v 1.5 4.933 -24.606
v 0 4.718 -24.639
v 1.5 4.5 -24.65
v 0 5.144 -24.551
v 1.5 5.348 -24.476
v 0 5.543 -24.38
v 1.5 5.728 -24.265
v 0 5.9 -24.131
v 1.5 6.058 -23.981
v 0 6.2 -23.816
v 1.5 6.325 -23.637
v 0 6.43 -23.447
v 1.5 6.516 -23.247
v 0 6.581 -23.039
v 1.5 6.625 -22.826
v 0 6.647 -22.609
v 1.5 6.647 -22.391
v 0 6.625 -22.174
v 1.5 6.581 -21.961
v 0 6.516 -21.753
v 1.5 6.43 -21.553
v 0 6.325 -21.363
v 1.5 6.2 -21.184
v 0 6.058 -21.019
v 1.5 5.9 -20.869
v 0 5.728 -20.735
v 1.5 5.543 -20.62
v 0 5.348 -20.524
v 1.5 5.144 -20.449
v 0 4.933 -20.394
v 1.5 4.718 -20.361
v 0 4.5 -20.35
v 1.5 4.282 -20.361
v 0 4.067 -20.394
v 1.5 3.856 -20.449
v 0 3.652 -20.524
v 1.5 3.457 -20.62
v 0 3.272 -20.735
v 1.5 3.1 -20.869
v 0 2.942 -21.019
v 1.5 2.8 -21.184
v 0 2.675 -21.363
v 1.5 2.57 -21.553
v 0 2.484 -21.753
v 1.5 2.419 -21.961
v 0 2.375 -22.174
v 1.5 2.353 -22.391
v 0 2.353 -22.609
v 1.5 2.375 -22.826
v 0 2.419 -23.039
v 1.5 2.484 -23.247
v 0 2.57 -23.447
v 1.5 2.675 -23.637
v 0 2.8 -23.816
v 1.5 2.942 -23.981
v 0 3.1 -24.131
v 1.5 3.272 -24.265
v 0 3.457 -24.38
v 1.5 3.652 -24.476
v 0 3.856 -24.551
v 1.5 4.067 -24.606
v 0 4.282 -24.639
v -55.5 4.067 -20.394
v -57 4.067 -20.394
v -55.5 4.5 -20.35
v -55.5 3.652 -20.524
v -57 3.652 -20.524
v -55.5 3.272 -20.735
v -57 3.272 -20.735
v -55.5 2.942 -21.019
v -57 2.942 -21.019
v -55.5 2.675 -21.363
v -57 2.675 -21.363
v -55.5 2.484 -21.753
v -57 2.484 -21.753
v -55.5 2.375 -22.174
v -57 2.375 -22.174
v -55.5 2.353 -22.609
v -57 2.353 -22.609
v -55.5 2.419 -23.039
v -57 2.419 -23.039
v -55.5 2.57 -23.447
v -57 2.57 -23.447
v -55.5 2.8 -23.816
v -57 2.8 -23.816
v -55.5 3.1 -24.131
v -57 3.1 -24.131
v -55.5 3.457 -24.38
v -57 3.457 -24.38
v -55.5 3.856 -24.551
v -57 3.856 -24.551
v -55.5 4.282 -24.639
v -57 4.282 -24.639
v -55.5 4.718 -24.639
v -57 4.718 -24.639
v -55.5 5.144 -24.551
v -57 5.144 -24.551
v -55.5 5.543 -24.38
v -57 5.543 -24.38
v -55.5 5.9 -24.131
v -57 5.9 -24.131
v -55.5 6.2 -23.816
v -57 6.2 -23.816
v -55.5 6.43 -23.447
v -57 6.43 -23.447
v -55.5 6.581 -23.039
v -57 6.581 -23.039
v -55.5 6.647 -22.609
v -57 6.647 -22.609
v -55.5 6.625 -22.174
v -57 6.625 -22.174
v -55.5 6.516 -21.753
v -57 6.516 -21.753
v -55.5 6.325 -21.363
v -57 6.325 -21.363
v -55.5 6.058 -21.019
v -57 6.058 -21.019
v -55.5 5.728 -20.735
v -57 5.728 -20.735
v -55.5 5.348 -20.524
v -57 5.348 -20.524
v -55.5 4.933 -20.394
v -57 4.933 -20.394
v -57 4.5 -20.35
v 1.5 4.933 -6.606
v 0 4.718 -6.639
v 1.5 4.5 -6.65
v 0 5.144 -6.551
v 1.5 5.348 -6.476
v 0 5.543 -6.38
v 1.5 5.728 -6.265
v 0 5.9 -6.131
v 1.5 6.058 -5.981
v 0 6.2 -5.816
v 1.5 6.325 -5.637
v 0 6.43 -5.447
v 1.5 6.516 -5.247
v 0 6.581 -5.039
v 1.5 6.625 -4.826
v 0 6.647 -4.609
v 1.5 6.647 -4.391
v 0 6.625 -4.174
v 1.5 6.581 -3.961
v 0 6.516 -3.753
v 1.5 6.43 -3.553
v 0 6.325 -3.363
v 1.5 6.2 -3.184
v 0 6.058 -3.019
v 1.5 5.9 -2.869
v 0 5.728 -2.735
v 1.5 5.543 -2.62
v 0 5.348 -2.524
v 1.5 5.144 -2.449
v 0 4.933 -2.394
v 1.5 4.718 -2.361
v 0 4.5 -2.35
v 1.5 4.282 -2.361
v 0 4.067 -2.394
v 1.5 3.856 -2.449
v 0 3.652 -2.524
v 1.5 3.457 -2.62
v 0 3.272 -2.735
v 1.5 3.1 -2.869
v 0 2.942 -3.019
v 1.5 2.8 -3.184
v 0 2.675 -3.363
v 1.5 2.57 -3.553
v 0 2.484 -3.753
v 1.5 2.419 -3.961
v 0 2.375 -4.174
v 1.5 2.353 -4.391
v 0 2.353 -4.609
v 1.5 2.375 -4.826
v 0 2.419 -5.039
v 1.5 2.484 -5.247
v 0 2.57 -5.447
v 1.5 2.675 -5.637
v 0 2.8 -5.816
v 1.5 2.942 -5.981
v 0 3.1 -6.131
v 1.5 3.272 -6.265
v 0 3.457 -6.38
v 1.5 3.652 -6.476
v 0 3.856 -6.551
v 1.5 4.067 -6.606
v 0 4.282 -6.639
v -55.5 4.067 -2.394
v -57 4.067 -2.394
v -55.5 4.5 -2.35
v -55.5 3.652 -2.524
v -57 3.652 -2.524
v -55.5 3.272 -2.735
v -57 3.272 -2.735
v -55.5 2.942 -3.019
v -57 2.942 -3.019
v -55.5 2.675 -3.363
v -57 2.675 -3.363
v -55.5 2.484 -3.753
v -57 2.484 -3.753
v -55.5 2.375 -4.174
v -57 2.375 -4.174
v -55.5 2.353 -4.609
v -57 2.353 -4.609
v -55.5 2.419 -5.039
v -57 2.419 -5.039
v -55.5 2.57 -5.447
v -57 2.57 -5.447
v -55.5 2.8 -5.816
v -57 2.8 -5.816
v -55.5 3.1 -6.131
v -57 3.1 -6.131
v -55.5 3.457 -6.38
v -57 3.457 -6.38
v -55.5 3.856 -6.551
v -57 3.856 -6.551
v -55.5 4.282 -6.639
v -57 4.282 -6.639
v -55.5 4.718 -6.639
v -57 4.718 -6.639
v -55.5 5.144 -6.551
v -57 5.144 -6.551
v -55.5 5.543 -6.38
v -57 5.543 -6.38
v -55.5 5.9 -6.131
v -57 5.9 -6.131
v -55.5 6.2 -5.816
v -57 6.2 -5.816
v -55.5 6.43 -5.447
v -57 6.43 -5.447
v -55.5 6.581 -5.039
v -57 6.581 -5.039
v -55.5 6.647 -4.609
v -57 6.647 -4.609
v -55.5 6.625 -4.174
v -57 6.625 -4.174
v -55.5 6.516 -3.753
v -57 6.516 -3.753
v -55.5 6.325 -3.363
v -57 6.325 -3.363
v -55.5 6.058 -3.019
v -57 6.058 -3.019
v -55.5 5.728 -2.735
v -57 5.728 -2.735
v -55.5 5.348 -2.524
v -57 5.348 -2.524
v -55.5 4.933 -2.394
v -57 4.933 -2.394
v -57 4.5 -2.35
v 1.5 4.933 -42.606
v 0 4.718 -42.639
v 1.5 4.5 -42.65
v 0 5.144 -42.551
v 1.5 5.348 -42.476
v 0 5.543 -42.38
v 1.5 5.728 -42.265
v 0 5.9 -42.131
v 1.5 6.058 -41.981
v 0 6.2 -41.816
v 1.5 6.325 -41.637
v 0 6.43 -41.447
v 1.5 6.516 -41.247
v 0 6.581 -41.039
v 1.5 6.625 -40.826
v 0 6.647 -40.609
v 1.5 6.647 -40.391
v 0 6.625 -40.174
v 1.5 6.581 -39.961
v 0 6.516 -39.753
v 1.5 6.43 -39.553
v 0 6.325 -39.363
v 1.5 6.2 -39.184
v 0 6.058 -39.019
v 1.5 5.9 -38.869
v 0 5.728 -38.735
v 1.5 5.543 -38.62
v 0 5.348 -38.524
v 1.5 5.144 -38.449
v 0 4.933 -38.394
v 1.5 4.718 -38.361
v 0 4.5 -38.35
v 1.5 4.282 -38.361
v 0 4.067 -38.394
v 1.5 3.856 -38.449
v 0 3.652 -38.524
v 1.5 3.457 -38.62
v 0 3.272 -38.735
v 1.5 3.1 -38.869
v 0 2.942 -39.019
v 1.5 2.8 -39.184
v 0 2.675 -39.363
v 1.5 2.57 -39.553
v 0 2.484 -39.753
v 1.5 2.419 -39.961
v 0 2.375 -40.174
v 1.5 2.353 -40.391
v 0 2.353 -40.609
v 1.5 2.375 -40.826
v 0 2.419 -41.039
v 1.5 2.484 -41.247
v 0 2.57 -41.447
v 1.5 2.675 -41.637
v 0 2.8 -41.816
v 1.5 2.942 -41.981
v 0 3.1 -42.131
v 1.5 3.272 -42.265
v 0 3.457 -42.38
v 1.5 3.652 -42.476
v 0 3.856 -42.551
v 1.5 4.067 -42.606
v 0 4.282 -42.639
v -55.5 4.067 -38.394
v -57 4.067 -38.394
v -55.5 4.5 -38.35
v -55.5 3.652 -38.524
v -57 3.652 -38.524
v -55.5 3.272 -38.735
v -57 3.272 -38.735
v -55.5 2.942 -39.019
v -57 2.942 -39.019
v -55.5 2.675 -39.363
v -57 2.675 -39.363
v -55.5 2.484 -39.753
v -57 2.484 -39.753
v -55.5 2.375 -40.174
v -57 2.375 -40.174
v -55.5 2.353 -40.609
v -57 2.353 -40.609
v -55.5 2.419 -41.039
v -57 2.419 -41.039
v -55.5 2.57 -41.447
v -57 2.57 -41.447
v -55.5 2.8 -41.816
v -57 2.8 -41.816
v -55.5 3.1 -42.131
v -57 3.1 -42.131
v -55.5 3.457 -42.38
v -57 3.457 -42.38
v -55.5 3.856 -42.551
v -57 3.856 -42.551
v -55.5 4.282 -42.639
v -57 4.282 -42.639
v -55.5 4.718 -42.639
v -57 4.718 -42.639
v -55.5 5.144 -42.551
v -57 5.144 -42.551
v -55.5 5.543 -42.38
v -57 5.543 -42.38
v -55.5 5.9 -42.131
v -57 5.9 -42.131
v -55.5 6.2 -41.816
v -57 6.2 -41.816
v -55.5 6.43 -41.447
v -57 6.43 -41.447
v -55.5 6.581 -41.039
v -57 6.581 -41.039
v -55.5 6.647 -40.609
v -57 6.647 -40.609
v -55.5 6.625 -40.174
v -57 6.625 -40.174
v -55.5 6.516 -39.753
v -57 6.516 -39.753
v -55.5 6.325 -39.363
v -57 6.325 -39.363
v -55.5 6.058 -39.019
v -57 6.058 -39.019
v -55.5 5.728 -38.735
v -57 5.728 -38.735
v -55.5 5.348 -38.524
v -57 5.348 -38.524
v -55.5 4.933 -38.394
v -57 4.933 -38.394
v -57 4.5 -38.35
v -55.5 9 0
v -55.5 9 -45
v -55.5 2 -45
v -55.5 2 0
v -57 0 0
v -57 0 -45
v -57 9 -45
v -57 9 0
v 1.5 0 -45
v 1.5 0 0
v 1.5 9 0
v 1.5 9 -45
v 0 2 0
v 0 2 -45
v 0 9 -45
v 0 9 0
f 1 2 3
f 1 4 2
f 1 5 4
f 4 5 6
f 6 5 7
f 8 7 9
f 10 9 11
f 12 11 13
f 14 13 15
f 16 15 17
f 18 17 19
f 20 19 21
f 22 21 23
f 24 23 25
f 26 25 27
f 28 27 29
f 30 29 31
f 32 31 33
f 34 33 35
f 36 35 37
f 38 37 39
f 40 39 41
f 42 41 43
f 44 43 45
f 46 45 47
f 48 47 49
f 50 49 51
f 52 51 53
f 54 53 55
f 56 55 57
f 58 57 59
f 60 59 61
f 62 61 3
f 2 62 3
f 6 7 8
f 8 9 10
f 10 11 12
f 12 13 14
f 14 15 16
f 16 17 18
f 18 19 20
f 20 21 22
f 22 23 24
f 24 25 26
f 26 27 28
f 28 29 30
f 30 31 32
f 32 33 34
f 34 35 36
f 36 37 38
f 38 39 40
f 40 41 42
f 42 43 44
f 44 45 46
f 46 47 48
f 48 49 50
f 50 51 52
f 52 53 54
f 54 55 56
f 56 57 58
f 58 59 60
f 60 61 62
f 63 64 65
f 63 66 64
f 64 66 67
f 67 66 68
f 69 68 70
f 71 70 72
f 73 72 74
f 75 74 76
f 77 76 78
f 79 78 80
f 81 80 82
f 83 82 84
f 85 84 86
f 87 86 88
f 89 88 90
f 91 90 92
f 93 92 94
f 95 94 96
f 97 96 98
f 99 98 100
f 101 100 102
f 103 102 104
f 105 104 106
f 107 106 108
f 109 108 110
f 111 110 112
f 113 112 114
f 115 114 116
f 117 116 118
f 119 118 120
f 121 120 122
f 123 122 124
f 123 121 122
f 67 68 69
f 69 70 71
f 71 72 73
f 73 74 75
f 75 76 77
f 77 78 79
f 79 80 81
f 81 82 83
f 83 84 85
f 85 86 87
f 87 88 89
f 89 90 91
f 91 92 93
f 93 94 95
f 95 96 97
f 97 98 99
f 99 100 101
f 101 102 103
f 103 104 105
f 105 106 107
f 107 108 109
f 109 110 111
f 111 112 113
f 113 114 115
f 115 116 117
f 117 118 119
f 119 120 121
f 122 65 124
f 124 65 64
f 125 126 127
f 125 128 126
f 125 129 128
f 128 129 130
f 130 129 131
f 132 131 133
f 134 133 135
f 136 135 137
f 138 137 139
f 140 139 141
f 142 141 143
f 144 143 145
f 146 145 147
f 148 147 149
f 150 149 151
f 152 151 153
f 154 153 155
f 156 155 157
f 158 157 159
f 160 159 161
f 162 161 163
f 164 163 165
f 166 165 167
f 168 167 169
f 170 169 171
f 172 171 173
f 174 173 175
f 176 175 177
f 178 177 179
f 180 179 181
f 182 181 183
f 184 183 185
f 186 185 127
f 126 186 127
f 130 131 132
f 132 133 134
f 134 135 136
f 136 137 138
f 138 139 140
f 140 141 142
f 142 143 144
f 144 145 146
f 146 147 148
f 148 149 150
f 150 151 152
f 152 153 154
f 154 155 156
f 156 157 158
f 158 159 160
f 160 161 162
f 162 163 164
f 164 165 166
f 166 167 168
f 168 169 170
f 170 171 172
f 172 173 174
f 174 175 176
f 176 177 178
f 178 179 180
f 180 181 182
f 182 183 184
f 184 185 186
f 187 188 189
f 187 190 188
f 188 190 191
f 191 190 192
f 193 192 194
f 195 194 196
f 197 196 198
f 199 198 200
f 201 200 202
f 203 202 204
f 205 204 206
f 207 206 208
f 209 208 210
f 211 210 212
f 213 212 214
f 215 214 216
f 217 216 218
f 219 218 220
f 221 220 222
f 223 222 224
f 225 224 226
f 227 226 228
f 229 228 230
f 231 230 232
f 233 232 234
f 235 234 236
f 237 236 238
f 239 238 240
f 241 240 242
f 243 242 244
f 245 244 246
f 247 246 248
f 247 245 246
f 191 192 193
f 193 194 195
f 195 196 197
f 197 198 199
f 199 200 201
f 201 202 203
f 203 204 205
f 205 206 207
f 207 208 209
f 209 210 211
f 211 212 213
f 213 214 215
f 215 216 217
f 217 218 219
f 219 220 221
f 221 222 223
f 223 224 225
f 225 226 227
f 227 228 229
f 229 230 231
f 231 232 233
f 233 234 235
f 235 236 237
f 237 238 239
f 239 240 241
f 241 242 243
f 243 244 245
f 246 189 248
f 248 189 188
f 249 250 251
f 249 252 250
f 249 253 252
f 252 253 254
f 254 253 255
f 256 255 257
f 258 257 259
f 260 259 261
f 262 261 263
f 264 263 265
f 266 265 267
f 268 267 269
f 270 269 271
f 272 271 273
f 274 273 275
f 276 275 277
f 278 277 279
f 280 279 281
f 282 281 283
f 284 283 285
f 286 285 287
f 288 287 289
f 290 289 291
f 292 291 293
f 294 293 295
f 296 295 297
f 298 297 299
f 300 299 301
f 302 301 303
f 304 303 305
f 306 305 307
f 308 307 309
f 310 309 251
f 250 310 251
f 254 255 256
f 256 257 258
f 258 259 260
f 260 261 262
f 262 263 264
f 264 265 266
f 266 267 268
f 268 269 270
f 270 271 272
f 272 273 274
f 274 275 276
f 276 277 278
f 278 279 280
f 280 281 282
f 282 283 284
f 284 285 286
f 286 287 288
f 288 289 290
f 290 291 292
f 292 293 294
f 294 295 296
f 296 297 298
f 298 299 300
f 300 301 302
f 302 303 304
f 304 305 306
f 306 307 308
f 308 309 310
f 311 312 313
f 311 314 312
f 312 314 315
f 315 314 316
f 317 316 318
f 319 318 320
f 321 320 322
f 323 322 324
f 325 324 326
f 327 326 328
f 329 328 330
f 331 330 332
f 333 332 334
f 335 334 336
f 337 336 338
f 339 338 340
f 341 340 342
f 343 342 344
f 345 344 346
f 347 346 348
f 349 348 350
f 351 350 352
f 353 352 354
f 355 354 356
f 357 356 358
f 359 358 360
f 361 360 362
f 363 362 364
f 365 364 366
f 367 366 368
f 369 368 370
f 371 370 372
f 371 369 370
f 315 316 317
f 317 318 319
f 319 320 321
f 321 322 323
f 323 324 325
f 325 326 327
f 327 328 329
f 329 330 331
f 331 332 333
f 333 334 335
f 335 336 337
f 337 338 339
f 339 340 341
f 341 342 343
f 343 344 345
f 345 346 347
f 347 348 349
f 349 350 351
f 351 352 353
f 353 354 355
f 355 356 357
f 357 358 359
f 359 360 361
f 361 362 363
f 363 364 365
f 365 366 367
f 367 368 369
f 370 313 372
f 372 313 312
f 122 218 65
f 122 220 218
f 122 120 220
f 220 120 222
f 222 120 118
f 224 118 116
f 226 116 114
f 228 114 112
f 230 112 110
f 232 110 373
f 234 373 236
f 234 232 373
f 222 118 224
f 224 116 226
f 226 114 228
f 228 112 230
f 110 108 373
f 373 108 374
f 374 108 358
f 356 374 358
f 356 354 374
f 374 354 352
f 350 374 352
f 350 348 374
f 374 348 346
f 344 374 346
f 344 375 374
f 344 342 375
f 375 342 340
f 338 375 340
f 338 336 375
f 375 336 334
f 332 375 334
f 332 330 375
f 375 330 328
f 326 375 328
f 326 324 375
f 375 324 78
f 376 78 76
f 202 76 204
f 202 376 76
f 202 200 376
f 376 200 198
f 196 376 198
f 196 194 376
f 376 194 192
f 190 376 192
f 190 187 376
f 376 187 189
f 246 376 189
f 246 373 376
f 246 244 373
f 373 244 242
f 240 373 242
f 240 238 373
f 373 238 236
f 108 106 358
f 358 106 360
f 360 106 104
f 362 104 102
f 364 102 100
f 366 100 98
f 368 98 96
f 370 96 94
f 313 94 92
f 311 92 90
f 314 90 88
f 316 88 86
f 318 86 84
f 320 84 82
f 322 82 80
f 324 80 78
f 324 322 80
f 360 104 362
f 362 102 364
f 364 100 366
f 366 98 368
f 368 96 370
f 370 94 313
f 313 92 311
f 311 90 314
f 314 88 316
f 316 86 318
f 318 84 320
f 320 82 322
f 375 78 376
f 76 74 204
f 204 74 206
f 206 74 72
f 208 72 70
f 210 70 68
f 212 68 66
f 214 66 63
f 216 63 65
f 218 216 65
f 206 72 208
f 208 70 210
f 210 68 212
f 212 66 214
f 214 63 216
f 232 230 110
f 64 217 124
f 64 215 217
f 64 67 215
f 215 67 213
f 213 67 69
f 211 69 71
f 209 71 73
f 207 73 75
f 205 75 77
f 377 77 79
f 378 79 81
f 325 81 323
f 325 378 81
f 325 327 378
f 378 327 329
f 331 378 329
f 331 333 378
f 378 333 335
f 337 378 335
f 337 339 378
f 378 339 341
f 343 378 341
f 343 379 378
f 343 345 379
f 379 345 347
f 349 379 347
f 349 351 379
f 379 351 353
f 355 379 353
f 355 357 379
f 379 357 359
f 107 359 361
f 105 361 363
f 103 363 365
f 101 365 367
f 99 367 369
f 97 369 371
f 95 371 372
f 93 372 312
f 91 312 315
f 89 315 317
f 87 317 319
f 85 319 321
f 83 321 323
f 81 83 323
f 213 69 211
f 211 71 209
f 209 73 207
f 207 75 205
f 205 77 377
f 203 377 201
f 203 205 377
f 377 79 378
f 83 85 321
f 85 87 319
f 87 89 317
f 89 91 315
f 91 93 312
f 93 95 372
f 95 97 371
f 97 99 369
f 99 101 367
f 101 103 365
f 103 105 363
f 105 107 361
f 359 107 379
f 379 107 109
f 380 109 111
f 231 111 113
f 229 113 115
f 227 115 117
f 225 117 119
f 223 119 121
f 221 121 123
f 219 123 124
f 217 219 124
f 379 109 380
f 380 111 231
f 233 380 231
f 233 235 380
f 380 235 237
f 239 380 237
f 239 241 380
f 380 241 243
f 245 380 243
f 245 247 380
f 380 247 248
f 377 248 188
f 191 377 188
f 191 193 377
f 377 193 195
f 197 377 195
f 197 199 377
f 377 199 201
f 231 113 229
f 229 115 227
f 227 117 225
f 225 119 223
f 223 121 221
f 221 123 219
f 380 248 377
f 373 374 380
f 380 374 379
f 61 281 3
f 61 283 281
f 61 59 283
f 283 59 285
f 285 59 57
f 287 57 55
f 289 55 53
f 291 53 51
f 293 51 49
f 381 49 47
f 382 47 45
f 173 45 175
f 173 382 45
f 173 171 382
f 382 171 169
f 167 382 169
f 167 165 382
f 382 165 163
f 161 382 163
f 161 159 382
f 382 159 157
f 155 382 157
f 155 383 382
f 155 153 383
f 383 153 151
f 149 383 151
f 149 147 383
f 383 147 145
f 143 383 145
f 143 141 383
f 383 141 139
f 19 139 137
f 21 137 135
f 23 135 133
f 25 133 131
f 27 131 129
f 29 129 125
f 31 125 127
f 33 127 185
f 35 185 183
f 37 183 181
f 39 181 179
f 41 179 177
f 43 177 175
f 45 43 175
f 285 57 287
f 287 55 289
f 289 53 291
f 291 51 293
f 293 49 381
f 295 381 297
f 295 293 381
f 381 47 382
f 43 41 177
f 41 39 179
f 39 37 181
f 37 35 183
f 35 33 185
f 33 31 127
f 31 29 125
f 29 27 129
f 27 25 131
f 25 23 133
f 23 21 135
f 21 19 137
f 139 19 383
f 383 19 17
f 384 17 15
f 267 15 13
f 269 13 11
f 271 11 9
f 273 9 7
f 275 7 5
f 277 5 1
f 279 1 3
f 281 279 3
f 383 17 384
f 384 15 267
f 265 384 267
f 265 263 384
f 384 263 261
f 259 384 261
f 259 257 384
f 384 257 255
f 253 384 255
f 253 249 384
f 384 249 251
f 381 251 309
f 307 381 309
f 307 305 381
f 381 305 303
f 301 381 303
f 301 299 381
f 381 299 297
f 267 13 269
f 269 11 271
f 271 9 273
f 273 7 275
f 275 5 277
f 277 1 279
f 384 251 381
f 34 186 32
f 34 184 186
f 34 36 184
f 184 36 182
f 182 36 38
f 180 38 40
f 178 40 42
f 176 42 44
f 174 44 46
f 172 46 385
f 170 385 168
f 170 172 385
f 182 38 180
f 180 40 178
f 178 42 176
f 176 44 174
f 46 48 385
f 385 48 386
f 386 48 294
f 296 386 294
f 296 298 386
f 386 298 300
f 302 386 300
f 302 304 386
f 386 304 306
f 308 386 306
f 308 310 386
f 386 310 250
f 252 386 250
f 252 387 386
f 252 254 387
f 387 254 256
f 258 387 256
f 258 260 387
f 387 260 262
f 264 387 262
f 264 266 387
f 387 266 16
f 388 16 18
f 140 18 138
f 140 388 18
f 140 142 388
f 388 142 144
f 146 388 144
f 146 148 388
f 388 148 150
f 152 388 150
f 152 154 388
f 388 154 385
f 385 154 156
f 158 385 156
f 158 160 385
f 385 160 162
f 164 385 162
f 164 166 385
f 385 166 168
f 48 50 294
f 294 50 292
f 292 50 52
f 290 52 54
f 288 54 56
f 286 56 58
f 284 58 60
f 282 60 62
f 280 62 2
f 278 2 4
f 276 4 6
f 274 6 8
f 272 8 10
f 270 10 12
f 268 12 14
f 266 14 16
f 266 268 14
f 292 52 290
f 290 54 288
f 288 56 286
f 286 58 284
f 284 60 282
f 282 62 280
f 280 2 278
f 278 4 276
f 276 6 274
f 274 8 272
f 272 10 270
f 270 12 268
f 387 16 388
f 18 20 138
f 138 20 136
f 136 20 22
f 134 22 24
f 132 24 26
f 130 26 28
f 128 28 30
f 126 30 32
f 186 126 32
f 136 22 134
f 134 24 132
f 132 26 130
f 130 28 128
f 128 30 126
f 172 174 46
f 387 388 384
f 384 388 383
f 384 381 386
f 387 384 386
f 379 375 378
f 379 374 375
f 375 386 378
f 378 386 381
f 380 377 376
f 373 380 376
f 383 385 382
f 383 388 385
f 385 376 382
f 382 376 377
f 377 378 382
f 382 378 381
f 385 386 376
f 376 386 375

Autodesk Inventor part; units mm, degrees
ref_plane "YZ Plane" through (0, 0, 0) normal (1, 0, 0) x (0, 1, 0)
ref_plane "XZ Plane" through (0, 0, 0) normal (0, 1, 0) x (-1, 0, 0)
ref_plane "XY Plane" through (0, 0, 0) normal (0, 0, 1) x (1, 0, 0)
sketch "Sketch1" plane through (0, 0, 0) normal (0, 1, 0) x (-1, 0, 0)
  line L0 (0, 0) -> (55.5, 0)
  line L1 (55.5, 0) -> (55.5, -45)
  line L2 (55.5, -45) -> (0, -45)
  line L3 (0, -45) -> (0, 0)
  dimension "d0" = 55.5
  dimension "d1" = 45
extrude "Extrusion1" add sketch "Sketch1" along normal blind 2
sketch "Sketch2" plane through (0, 0, 0) normal (0, -1, 0) x (1, 0, 0)
  line L0 (0, -45) -> (-55.5, -45) projected
  line L1 (-55.5, -45) -> (-57, -45)
  line L2 (-57, -45) -> (-57, 0)
  line L3 (-57, 0) -> (-55.5, 0)
  line L4 (-55.5, 0) -> (-55.5, -45)
  line L5 (0, 0) -> (0, -45) projected
  line L6 (0, -45) -> (1.5, -45)
  line L7 (1.5, -45) -> (1.5, 0)
  line L8 (1.5, 0) -> (0, 0)
  line L9 (0, 0) -> (0, -45)
  dimension "d4" = 1.5
  dimension "d5" = 1.5
extrude "Extrusion2" add sketch "Sketch2" against normal blind 9
sketch "Sketch3" plane through (1.5, 0, 0) normal (1, 0, 0) x (0, 0, -1)
  circle A0 centre (4.5, 4.5) radius 2.15
  line L0 (45, 0) -> (0, 0) projected
  line L1 (0, 0) -> (0, 9) projected
  circle A1 centre (40.5, 4.5) radius 2.15
  line L2 (45, 0) -> (45, 9) projected
  circle A2 centre (22.5, 4.5) radius 2.15
  dimension "d8" = 4.3
  dimension "d9" = 4.5
  dimension "d10" = 4.5
  dimension "d11" = 4.3
  dimension "d12" = 4.5
  dimension "d13" = 4.5
  dimension "d14" = 4.3
hole "Hole1" at (1.5, 4.5, -4.5) at (1.5, 4.5, -22.5) at (1.5, 4.5, -40.5) direction (-1, 0, 0) diameter 4.3 end through all
properties part number "TrolleyBottomPlate"
